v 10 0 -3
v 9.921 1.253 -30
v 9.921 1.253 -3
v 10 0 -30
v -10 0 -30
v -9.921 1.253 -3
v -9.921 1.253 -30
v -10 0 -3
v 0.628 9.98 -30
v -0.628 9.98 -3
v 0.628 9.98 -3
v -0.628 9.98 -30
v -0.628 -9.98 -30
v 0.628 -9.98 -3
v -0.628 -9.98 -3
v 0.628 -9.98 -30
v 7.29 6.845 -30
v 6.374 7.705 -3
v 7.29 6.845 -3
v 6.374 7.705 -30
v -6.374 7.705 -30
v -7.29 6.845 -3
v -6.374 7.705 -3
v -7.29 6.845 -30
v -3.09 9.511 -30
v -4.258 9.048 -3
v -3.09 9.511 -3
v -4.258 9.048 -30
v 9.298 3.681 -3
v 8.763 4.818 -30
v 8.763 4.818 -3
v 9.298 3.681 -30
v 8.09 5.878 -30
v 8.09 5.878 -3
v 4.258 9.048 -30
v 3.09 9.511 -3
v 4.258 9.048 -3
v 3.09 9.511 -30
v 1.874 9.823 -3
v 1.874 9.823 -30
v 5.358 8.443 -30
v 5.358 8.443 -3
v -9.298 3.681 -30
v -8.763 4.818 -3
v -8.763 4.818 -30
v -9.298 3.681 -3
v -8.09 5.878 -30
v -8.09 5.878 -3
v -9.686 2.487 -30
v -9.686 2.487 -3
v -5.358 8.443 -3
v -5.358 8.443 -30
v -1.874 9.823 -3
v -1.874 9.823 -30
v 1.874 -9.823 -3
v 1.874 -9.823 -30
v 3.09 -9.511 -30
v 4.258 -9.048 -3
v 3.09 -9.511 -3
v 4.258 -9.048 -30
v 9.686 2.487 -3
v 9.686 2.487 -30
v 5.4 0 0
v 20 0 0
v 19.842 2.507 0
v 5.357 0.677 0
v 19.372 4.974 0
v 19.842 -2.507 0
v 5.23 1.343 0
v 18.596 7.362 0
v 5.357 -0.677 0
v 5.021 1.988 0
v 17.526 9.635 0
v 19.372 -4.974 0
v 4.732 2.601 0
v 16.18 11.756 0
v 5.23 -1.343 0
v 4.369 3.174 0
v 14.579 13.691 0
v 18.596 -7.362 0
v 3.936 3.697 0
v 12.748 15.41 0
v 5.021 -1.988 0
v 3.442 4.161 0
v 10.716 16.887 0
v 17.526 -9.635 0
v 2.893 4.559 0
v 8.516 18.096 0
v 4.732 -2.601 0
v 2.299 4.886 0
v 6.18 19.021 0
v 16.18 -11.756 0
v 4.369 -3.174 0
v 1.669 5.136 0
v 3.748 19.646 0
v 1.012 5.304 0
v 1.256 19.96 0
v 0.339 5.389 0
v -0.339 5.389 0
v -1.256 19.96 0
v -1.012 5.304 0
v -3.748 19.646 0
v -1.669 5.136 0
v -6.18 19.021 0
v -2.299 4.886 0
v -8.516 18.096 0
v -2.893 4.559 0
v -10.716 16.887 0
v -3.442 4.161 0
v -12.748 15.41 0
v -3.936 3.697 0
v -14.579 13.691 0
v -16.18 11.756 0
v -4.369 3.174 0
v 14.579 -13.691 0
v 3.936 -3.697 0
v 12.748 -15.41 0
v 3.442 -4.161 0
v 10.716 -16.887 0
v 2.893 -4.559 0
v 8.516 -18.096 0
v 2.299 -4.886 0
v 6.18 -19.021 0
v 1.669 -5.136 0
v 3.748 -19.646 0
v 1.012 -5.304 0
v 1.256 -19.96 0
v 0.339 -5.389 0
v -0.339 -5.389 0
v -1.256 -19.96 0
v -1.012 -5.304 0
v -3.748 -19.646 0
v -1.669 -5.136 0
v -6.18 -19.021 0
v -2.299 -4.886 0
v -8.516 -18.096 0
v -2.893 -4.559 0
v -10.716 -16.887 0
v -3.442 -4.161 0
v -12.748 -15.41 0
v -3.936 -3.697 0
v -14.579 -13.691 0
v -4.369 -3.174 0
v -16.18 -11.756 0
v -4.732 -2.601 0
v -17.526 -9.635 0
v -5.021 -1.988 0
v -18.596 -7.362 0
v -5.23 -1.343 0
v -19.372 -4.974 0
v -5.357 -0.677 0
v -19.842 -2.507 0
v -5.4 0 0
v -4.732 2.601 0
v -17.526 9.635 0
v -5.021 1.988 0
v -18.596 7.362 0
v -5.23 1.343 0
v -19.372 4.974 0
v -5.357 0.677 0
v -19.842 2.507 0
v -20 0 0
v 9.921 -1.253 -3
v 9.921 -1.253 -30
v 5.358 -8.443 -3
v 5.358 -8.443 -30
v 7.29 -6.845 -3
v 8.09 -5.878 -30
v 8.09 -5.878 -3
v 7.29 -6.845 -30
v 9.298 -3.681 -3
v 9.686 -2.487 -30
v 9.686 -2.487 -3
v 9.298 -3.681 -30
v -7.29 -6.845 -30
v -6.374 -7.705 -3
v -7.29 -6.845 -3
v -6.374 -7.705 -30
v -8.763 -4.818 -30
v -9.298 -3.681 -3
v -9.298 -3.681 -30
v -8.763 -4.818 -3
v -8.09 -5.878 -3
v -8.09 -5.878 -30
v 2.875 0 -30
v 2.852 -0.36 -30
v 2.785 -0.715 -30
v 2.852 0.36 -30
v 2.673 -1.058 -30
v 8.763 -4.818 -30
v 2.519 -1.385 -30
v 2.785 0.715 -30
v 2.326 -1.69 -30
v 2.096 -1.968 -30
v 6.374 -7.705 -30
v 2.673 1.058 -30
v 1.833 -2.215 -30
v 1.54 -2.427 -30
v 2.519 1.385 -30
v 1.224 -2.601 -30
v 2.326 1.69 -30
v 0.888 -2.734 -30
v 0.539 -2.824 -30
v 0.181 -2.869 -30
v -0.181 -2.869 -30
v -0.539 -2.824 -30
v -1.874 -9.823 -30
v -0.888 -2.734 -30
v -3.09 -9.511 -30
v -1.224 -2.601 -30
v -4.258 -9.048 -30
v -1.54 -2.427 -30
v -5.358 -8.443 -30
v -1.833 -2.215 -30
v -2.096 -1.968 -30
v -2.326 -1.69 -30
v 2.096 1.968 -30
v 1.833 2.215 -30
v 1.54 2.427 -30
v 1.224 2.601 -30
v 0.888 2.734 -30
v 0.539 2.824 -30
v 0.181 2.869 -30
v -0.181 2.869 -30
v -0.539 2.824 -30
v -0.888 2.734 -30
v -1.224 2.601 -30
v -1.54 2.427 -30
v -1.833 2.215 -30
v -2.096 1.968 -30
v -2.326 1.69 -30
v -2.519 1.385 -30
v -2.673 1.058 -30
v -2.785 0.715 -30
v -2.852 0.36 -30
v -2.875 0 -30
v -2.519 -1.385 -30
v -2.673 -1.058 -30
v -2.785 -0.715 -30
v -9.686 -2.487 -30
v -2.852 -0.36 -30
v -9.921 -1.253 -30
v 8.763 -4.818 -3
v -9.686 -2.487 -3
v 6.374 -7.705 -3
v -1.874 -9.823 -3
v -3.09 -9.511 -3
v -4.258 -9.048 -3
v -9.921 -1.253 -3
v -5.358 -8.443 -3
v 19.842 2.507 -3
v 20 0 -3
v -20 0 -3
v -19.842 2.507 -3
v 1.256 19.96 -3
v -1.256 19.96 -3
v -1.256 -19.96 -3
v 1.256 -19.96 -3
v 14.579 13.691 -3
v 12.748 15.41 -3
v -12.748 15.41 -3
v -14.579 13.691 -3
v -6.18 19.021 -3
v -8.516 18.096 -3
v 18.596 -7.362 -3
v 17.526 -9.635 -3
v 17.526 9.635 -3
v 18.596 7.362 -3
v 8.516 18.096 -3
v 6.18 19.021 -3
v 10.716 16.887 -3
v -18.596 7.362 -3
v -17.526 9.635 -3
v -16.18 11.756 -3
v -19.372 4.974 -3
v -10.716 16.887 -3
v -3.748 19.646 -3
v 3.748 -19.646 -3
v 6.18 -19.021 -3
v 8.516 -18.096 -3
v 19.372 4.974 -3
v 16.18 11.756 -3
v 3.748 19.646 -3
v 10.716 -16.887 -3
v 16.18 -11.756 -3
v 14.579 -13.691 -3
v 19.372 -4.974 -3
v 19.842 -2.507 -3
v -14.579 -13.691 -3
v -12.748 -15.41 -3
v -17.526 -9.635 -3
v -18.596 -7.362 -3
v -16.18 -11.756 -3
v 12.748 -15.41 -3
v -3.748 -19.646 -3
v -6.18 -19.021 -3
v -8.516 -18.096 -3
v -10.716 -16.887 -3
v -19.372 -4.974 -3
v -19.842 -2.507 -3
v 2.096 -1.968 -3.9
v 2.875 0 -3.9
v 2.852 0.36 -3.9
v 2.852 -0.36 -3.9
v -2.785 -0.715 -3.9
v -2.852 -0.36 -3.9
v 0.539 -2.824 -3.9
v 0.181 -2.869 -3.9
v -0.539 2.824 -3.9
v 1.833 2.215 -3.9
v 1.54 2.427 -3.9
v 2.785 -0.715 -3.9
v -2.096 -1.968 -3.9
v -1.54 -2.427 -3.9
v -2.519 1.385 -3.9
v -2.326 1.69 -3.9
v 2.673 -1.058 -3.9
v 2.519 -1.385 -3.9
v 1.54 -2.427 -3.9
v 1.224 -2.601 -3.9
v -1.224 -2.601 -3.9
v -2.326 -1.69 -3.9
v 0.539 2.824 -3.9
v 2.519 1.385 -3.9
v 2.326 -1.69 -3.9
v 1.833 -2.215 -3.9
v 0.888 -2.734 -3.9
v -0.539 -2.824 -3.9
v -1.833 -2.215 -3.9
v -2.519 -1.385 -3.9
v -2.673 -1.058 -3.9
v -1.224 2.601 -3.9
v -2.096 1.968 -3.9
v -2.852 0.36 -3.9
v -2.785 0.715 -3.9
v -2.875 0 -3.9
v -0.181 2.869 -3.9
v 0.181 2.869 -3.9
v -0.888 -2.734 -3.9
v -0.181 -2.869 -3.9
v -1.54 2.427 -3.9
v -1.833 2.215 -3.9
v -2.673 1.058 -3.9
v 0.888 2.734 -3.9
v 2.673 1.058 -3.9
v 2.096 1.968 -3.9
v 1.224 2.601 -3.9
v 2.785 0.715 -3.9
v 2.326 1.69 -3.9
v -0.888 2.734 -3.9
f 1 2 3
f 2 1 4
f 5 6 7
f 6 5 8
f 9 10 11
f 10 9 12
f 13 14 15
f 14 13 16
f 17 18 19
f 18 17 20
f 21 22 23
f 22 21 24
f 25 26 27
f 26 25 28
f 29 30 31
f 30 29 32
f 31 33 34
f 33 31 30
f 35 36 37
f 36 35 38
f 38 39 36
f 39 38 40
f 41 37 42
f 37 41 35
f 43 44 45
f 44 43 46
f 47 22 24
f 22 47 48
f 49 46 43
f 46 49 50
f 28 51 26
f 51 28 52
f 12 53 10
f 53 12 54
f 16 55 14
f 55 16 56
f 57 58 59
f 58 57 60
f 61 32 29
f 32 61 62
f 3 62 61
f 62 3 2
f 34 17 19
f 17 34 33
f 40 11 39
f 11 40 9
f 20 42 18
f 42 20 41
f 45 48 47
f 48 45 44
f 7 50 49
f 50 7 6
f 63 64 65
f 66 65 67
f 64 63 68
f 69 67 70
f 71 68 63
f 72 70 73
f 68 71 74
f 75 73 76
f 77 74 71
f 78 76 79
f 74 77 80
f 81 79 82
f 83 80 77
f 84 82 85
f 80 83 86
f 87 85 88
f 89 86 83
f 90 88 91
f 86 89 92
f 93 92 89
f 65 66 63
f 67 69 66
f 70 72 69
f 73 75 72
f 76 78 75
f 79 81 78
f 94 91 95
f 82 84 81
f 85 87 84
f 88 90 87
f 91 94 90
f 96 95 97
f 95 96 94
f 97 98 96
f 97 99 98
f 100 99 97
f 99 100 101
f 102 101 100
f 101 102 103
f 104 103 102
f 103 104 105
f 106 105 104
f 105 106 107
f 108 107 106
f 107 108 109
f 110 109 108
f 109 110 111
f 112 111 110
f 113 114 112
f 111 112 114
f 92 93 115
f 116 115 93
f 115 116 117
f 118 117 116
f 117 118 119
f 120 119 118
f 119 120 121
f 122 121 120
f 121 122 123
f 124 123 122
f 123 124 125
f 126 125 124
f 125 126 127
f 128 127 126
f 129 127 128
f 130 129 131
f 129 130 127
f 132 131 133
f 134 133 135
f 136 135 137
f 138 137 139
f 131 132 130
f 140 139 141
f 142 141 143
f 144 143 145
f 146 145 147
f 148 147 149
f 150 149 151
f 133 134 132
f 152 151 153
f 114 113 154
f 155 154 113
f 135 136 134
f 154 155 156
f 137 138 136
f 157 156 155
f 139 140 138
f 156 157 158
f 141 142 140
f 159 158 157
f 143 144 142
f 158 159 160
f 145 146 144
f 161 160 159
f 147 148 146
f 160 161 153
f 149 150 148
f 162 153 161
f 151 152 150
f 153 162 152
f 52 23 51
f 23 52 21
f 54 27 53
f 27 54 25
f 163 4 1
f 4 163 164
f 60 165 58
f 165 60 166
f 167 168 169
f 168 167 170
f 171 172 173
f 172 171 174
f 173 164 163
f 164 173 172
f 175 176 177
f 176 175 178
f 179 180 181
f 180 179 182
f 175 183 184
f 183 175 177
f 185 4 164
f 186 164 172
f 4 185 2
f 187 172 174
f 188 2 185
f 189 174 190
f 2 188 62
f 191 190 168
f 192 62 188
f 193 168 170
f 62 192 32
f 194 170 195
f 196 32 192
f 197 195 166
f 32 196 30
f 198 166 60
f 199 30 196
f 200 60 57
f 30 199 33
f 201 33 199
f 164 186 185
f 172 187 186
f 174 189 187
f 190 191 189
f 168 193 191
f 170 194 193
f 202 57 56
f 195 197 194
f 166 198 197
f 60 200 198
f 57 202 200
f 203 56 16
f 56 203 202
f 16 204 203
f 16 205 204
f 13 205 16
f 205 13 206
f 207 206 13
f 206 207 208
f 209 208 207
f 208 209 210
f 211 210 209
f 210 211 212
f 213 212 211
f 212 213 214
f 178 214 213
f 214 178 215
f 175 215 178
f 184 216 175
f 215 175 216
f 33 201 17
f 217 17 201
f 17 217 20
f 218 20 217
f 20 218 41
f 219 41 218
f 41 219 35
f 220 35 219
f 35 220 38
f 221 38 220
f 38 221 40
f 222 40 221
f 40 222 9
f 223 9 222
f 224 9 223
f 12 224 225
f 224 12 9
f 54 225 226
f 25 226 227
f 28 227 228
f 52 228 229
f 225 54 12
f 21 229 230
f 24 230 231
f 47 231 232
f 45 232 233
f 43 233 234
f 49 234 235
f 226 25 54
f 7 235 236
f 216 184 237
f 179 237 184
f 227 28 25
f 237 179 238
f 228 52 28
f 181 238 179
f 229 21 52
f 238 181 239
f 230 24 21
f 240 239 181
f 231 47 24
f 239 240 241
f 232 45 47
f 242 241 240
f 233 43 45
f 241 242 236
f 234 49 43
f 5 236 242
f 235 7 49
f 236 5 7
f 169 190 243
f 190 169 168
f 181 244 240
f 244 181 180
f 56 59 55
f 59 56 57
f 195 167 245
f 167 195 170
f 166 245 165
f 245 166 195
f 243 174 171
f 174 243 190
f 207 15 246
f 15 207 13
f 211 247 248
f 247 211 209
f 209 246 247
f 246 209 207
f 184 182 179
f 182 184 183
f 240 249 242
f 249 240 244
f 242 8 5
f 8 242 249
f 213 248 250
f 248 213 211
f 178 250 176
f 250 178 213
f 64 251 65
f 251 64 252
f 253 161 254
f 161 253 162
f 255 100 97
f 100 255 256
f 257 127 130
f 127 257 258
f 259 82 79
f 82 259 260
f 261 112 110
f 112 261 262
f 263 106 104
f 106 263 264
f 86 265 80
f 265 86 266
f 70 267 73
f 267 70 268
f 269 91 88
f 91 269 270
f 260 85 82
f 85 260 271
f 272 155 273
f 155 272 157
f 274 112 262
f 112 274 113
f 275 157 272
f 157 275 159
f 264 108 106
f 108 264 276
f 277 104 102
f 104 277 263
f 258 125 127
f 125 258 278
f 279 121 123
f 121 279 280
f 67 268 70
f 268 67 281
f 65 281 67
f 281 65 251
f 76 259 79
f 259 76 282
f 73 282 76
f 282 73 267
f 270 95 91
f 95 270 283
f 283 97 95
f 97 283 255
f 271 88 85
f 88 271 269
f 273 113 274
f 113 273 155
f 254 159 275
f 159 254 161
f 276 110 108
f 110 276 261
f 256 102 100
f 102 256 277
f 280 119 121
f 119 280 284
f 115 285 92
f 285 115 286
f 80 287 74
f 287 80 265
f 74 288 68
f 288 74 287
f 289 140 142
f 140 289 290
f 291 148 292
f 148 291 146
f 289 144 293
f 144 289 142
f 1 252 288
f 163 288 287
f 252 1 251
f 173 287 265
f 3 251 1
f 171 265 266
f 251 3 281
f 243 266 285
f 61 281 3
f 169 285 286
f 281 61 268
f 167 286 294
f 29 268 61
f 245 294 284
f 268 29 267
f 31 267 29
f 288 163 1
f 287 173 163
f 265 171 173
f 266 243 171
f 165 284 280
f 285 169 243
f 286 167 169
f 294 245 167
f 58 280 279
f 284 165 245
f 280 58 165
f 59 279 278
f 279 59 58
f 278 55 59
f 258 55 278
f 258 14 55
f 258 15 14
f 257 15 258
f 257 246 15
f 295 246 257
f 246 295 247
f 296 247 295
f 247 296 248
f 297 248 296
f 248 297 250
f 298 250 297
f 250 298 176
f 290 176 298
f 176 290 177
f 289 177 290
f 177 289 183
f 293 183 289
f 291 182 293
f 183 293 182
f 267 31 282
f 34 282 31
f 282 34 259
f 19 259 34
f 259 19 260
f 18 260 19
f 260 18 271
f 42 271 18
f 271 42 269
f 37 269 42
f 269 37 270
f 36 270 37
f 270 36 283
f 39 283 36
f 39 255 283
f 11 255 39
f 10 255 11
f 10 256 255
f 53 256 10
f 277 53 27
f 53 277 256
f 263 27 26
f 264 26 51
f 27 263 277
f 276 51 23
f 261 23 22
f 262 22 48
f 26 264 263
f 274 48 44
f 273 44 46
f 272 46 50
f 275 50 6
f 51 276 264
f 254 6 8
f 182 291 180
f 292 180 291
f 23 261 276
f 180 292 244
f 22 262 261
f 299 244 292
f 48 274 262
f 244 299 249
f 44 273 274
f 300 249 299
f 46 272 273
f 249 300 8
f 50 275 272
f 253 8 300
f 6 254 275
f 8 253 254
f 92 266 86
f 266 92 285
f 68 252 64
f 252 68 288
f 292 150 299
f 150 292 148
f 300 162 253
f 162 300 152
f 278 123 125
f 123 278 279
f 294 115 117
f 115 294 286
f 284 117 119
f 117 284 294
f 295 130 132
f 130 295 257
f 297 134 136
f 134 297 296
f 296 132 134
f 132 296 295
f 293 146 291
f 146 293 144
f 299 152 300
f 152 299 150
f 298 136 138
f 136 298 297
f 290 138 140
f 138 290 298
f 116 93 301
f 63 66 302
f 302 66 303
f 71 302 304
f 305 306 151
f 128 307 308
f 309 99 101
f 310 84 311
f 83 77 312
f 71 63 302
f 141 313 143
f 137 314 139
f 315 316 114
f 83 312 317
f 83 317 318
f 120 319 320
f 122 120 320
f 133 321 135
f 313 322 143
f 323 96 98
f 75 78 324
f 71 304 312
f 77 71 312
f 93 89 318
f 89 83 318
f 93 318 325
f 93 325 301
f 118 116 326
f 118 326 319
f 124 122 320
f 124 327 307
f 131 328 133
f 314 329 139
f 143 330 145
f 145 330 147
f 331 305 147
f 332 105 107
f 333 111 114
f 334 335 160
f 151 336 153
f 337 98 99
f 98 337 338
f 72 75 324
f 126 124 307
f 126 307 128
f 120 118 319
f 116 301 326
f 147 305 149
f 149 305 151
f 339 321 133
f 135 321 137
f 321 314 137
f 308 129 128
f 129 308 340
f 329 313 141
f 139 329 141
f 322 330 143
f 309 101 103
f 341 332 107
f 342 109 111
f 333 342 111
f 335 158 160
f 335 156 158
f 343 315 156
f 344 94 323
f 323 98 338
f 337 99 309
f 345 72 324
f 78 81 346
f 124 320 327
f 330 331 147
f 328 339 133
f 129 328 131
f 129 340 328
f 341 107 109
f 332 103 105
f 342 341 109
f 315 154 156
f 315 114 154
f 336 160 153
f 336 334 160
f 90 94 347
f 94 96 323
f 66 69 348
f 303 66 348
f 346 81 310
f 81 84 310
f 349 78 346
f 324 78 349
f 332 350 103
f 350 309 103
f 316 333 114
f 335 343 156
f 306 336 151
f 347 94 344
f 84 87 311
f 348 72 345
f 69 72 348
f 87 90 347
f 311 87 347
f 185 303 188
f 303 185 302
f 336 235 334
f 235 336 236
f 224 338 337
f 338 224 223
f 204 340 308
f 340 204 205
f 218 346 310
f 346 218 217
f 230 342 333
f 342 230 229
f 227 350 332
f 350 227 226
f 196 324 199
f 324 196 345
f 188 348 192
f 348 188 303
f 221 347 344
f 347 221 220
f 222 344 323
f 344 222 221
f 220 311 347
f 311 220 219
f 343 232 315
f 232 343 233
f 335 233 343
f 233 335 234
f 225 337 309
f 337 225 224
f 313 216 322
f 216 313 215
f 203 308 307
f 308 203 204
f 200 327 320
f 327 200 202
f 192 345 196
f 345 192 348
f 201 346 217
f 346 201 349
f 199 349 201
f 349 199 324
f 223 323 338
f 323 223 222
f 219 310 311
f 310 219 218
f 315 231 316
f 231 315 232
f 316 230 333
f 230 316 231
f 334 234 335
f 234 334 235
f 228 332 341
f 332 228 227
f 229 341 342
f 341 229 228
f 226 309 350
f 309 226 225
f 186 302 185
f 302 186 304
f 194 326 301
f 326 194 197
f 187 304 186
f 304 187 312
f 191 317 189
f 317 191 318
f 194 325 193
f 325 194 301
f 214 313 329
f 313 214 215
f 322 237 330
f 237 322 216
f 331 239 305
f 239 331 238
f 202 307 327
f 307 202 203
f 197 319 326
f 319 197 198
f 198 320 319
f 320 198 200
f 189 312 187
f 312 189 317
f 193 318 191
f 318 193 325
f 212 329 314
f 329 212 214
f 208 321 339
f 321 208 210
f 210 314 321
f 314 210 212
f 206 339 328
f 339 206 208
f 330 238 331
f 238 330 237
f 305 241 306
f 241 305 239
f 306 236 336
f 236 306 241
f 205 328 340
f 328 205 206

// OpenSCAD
$fn = 50;


difference() {
	union() {
		translate(v = [0, 0, -30.0000000000]) {
			cylinder(h = 30, r = 10.0000000000);
		}
		translate(v = [0, 0, -3.0000000000]) {
			cylinder(h = 3, r = 20.0000000000);
		}
	}
	union() {
		translate(v = [0, 0, 0]) {
			rotate(a = [0, 0, 0]) {
				difference() {
					union() {
						#translate(v = [0, 0, -30.0000000000]) {
							cylinder(h = 30, r = 2.6000000000);
						}
						#translate(v = [0, 0, -3.9000000000]) {
							cylinder(h = 3.9000000000, r1 = 2.8750000000, r2 = 5.4000000000);
						}
						#translate(v = [0, 0, -30.0000000000]) {
							cylinder(h = 30, r = 2.8750000000);
						}
						#translate(v = [0, 0, -30.0000000000]) {
							cylinder(h = 30, r = 2.6000000000);
						}
					}
					union();
				}
			}
		}
	}
}
